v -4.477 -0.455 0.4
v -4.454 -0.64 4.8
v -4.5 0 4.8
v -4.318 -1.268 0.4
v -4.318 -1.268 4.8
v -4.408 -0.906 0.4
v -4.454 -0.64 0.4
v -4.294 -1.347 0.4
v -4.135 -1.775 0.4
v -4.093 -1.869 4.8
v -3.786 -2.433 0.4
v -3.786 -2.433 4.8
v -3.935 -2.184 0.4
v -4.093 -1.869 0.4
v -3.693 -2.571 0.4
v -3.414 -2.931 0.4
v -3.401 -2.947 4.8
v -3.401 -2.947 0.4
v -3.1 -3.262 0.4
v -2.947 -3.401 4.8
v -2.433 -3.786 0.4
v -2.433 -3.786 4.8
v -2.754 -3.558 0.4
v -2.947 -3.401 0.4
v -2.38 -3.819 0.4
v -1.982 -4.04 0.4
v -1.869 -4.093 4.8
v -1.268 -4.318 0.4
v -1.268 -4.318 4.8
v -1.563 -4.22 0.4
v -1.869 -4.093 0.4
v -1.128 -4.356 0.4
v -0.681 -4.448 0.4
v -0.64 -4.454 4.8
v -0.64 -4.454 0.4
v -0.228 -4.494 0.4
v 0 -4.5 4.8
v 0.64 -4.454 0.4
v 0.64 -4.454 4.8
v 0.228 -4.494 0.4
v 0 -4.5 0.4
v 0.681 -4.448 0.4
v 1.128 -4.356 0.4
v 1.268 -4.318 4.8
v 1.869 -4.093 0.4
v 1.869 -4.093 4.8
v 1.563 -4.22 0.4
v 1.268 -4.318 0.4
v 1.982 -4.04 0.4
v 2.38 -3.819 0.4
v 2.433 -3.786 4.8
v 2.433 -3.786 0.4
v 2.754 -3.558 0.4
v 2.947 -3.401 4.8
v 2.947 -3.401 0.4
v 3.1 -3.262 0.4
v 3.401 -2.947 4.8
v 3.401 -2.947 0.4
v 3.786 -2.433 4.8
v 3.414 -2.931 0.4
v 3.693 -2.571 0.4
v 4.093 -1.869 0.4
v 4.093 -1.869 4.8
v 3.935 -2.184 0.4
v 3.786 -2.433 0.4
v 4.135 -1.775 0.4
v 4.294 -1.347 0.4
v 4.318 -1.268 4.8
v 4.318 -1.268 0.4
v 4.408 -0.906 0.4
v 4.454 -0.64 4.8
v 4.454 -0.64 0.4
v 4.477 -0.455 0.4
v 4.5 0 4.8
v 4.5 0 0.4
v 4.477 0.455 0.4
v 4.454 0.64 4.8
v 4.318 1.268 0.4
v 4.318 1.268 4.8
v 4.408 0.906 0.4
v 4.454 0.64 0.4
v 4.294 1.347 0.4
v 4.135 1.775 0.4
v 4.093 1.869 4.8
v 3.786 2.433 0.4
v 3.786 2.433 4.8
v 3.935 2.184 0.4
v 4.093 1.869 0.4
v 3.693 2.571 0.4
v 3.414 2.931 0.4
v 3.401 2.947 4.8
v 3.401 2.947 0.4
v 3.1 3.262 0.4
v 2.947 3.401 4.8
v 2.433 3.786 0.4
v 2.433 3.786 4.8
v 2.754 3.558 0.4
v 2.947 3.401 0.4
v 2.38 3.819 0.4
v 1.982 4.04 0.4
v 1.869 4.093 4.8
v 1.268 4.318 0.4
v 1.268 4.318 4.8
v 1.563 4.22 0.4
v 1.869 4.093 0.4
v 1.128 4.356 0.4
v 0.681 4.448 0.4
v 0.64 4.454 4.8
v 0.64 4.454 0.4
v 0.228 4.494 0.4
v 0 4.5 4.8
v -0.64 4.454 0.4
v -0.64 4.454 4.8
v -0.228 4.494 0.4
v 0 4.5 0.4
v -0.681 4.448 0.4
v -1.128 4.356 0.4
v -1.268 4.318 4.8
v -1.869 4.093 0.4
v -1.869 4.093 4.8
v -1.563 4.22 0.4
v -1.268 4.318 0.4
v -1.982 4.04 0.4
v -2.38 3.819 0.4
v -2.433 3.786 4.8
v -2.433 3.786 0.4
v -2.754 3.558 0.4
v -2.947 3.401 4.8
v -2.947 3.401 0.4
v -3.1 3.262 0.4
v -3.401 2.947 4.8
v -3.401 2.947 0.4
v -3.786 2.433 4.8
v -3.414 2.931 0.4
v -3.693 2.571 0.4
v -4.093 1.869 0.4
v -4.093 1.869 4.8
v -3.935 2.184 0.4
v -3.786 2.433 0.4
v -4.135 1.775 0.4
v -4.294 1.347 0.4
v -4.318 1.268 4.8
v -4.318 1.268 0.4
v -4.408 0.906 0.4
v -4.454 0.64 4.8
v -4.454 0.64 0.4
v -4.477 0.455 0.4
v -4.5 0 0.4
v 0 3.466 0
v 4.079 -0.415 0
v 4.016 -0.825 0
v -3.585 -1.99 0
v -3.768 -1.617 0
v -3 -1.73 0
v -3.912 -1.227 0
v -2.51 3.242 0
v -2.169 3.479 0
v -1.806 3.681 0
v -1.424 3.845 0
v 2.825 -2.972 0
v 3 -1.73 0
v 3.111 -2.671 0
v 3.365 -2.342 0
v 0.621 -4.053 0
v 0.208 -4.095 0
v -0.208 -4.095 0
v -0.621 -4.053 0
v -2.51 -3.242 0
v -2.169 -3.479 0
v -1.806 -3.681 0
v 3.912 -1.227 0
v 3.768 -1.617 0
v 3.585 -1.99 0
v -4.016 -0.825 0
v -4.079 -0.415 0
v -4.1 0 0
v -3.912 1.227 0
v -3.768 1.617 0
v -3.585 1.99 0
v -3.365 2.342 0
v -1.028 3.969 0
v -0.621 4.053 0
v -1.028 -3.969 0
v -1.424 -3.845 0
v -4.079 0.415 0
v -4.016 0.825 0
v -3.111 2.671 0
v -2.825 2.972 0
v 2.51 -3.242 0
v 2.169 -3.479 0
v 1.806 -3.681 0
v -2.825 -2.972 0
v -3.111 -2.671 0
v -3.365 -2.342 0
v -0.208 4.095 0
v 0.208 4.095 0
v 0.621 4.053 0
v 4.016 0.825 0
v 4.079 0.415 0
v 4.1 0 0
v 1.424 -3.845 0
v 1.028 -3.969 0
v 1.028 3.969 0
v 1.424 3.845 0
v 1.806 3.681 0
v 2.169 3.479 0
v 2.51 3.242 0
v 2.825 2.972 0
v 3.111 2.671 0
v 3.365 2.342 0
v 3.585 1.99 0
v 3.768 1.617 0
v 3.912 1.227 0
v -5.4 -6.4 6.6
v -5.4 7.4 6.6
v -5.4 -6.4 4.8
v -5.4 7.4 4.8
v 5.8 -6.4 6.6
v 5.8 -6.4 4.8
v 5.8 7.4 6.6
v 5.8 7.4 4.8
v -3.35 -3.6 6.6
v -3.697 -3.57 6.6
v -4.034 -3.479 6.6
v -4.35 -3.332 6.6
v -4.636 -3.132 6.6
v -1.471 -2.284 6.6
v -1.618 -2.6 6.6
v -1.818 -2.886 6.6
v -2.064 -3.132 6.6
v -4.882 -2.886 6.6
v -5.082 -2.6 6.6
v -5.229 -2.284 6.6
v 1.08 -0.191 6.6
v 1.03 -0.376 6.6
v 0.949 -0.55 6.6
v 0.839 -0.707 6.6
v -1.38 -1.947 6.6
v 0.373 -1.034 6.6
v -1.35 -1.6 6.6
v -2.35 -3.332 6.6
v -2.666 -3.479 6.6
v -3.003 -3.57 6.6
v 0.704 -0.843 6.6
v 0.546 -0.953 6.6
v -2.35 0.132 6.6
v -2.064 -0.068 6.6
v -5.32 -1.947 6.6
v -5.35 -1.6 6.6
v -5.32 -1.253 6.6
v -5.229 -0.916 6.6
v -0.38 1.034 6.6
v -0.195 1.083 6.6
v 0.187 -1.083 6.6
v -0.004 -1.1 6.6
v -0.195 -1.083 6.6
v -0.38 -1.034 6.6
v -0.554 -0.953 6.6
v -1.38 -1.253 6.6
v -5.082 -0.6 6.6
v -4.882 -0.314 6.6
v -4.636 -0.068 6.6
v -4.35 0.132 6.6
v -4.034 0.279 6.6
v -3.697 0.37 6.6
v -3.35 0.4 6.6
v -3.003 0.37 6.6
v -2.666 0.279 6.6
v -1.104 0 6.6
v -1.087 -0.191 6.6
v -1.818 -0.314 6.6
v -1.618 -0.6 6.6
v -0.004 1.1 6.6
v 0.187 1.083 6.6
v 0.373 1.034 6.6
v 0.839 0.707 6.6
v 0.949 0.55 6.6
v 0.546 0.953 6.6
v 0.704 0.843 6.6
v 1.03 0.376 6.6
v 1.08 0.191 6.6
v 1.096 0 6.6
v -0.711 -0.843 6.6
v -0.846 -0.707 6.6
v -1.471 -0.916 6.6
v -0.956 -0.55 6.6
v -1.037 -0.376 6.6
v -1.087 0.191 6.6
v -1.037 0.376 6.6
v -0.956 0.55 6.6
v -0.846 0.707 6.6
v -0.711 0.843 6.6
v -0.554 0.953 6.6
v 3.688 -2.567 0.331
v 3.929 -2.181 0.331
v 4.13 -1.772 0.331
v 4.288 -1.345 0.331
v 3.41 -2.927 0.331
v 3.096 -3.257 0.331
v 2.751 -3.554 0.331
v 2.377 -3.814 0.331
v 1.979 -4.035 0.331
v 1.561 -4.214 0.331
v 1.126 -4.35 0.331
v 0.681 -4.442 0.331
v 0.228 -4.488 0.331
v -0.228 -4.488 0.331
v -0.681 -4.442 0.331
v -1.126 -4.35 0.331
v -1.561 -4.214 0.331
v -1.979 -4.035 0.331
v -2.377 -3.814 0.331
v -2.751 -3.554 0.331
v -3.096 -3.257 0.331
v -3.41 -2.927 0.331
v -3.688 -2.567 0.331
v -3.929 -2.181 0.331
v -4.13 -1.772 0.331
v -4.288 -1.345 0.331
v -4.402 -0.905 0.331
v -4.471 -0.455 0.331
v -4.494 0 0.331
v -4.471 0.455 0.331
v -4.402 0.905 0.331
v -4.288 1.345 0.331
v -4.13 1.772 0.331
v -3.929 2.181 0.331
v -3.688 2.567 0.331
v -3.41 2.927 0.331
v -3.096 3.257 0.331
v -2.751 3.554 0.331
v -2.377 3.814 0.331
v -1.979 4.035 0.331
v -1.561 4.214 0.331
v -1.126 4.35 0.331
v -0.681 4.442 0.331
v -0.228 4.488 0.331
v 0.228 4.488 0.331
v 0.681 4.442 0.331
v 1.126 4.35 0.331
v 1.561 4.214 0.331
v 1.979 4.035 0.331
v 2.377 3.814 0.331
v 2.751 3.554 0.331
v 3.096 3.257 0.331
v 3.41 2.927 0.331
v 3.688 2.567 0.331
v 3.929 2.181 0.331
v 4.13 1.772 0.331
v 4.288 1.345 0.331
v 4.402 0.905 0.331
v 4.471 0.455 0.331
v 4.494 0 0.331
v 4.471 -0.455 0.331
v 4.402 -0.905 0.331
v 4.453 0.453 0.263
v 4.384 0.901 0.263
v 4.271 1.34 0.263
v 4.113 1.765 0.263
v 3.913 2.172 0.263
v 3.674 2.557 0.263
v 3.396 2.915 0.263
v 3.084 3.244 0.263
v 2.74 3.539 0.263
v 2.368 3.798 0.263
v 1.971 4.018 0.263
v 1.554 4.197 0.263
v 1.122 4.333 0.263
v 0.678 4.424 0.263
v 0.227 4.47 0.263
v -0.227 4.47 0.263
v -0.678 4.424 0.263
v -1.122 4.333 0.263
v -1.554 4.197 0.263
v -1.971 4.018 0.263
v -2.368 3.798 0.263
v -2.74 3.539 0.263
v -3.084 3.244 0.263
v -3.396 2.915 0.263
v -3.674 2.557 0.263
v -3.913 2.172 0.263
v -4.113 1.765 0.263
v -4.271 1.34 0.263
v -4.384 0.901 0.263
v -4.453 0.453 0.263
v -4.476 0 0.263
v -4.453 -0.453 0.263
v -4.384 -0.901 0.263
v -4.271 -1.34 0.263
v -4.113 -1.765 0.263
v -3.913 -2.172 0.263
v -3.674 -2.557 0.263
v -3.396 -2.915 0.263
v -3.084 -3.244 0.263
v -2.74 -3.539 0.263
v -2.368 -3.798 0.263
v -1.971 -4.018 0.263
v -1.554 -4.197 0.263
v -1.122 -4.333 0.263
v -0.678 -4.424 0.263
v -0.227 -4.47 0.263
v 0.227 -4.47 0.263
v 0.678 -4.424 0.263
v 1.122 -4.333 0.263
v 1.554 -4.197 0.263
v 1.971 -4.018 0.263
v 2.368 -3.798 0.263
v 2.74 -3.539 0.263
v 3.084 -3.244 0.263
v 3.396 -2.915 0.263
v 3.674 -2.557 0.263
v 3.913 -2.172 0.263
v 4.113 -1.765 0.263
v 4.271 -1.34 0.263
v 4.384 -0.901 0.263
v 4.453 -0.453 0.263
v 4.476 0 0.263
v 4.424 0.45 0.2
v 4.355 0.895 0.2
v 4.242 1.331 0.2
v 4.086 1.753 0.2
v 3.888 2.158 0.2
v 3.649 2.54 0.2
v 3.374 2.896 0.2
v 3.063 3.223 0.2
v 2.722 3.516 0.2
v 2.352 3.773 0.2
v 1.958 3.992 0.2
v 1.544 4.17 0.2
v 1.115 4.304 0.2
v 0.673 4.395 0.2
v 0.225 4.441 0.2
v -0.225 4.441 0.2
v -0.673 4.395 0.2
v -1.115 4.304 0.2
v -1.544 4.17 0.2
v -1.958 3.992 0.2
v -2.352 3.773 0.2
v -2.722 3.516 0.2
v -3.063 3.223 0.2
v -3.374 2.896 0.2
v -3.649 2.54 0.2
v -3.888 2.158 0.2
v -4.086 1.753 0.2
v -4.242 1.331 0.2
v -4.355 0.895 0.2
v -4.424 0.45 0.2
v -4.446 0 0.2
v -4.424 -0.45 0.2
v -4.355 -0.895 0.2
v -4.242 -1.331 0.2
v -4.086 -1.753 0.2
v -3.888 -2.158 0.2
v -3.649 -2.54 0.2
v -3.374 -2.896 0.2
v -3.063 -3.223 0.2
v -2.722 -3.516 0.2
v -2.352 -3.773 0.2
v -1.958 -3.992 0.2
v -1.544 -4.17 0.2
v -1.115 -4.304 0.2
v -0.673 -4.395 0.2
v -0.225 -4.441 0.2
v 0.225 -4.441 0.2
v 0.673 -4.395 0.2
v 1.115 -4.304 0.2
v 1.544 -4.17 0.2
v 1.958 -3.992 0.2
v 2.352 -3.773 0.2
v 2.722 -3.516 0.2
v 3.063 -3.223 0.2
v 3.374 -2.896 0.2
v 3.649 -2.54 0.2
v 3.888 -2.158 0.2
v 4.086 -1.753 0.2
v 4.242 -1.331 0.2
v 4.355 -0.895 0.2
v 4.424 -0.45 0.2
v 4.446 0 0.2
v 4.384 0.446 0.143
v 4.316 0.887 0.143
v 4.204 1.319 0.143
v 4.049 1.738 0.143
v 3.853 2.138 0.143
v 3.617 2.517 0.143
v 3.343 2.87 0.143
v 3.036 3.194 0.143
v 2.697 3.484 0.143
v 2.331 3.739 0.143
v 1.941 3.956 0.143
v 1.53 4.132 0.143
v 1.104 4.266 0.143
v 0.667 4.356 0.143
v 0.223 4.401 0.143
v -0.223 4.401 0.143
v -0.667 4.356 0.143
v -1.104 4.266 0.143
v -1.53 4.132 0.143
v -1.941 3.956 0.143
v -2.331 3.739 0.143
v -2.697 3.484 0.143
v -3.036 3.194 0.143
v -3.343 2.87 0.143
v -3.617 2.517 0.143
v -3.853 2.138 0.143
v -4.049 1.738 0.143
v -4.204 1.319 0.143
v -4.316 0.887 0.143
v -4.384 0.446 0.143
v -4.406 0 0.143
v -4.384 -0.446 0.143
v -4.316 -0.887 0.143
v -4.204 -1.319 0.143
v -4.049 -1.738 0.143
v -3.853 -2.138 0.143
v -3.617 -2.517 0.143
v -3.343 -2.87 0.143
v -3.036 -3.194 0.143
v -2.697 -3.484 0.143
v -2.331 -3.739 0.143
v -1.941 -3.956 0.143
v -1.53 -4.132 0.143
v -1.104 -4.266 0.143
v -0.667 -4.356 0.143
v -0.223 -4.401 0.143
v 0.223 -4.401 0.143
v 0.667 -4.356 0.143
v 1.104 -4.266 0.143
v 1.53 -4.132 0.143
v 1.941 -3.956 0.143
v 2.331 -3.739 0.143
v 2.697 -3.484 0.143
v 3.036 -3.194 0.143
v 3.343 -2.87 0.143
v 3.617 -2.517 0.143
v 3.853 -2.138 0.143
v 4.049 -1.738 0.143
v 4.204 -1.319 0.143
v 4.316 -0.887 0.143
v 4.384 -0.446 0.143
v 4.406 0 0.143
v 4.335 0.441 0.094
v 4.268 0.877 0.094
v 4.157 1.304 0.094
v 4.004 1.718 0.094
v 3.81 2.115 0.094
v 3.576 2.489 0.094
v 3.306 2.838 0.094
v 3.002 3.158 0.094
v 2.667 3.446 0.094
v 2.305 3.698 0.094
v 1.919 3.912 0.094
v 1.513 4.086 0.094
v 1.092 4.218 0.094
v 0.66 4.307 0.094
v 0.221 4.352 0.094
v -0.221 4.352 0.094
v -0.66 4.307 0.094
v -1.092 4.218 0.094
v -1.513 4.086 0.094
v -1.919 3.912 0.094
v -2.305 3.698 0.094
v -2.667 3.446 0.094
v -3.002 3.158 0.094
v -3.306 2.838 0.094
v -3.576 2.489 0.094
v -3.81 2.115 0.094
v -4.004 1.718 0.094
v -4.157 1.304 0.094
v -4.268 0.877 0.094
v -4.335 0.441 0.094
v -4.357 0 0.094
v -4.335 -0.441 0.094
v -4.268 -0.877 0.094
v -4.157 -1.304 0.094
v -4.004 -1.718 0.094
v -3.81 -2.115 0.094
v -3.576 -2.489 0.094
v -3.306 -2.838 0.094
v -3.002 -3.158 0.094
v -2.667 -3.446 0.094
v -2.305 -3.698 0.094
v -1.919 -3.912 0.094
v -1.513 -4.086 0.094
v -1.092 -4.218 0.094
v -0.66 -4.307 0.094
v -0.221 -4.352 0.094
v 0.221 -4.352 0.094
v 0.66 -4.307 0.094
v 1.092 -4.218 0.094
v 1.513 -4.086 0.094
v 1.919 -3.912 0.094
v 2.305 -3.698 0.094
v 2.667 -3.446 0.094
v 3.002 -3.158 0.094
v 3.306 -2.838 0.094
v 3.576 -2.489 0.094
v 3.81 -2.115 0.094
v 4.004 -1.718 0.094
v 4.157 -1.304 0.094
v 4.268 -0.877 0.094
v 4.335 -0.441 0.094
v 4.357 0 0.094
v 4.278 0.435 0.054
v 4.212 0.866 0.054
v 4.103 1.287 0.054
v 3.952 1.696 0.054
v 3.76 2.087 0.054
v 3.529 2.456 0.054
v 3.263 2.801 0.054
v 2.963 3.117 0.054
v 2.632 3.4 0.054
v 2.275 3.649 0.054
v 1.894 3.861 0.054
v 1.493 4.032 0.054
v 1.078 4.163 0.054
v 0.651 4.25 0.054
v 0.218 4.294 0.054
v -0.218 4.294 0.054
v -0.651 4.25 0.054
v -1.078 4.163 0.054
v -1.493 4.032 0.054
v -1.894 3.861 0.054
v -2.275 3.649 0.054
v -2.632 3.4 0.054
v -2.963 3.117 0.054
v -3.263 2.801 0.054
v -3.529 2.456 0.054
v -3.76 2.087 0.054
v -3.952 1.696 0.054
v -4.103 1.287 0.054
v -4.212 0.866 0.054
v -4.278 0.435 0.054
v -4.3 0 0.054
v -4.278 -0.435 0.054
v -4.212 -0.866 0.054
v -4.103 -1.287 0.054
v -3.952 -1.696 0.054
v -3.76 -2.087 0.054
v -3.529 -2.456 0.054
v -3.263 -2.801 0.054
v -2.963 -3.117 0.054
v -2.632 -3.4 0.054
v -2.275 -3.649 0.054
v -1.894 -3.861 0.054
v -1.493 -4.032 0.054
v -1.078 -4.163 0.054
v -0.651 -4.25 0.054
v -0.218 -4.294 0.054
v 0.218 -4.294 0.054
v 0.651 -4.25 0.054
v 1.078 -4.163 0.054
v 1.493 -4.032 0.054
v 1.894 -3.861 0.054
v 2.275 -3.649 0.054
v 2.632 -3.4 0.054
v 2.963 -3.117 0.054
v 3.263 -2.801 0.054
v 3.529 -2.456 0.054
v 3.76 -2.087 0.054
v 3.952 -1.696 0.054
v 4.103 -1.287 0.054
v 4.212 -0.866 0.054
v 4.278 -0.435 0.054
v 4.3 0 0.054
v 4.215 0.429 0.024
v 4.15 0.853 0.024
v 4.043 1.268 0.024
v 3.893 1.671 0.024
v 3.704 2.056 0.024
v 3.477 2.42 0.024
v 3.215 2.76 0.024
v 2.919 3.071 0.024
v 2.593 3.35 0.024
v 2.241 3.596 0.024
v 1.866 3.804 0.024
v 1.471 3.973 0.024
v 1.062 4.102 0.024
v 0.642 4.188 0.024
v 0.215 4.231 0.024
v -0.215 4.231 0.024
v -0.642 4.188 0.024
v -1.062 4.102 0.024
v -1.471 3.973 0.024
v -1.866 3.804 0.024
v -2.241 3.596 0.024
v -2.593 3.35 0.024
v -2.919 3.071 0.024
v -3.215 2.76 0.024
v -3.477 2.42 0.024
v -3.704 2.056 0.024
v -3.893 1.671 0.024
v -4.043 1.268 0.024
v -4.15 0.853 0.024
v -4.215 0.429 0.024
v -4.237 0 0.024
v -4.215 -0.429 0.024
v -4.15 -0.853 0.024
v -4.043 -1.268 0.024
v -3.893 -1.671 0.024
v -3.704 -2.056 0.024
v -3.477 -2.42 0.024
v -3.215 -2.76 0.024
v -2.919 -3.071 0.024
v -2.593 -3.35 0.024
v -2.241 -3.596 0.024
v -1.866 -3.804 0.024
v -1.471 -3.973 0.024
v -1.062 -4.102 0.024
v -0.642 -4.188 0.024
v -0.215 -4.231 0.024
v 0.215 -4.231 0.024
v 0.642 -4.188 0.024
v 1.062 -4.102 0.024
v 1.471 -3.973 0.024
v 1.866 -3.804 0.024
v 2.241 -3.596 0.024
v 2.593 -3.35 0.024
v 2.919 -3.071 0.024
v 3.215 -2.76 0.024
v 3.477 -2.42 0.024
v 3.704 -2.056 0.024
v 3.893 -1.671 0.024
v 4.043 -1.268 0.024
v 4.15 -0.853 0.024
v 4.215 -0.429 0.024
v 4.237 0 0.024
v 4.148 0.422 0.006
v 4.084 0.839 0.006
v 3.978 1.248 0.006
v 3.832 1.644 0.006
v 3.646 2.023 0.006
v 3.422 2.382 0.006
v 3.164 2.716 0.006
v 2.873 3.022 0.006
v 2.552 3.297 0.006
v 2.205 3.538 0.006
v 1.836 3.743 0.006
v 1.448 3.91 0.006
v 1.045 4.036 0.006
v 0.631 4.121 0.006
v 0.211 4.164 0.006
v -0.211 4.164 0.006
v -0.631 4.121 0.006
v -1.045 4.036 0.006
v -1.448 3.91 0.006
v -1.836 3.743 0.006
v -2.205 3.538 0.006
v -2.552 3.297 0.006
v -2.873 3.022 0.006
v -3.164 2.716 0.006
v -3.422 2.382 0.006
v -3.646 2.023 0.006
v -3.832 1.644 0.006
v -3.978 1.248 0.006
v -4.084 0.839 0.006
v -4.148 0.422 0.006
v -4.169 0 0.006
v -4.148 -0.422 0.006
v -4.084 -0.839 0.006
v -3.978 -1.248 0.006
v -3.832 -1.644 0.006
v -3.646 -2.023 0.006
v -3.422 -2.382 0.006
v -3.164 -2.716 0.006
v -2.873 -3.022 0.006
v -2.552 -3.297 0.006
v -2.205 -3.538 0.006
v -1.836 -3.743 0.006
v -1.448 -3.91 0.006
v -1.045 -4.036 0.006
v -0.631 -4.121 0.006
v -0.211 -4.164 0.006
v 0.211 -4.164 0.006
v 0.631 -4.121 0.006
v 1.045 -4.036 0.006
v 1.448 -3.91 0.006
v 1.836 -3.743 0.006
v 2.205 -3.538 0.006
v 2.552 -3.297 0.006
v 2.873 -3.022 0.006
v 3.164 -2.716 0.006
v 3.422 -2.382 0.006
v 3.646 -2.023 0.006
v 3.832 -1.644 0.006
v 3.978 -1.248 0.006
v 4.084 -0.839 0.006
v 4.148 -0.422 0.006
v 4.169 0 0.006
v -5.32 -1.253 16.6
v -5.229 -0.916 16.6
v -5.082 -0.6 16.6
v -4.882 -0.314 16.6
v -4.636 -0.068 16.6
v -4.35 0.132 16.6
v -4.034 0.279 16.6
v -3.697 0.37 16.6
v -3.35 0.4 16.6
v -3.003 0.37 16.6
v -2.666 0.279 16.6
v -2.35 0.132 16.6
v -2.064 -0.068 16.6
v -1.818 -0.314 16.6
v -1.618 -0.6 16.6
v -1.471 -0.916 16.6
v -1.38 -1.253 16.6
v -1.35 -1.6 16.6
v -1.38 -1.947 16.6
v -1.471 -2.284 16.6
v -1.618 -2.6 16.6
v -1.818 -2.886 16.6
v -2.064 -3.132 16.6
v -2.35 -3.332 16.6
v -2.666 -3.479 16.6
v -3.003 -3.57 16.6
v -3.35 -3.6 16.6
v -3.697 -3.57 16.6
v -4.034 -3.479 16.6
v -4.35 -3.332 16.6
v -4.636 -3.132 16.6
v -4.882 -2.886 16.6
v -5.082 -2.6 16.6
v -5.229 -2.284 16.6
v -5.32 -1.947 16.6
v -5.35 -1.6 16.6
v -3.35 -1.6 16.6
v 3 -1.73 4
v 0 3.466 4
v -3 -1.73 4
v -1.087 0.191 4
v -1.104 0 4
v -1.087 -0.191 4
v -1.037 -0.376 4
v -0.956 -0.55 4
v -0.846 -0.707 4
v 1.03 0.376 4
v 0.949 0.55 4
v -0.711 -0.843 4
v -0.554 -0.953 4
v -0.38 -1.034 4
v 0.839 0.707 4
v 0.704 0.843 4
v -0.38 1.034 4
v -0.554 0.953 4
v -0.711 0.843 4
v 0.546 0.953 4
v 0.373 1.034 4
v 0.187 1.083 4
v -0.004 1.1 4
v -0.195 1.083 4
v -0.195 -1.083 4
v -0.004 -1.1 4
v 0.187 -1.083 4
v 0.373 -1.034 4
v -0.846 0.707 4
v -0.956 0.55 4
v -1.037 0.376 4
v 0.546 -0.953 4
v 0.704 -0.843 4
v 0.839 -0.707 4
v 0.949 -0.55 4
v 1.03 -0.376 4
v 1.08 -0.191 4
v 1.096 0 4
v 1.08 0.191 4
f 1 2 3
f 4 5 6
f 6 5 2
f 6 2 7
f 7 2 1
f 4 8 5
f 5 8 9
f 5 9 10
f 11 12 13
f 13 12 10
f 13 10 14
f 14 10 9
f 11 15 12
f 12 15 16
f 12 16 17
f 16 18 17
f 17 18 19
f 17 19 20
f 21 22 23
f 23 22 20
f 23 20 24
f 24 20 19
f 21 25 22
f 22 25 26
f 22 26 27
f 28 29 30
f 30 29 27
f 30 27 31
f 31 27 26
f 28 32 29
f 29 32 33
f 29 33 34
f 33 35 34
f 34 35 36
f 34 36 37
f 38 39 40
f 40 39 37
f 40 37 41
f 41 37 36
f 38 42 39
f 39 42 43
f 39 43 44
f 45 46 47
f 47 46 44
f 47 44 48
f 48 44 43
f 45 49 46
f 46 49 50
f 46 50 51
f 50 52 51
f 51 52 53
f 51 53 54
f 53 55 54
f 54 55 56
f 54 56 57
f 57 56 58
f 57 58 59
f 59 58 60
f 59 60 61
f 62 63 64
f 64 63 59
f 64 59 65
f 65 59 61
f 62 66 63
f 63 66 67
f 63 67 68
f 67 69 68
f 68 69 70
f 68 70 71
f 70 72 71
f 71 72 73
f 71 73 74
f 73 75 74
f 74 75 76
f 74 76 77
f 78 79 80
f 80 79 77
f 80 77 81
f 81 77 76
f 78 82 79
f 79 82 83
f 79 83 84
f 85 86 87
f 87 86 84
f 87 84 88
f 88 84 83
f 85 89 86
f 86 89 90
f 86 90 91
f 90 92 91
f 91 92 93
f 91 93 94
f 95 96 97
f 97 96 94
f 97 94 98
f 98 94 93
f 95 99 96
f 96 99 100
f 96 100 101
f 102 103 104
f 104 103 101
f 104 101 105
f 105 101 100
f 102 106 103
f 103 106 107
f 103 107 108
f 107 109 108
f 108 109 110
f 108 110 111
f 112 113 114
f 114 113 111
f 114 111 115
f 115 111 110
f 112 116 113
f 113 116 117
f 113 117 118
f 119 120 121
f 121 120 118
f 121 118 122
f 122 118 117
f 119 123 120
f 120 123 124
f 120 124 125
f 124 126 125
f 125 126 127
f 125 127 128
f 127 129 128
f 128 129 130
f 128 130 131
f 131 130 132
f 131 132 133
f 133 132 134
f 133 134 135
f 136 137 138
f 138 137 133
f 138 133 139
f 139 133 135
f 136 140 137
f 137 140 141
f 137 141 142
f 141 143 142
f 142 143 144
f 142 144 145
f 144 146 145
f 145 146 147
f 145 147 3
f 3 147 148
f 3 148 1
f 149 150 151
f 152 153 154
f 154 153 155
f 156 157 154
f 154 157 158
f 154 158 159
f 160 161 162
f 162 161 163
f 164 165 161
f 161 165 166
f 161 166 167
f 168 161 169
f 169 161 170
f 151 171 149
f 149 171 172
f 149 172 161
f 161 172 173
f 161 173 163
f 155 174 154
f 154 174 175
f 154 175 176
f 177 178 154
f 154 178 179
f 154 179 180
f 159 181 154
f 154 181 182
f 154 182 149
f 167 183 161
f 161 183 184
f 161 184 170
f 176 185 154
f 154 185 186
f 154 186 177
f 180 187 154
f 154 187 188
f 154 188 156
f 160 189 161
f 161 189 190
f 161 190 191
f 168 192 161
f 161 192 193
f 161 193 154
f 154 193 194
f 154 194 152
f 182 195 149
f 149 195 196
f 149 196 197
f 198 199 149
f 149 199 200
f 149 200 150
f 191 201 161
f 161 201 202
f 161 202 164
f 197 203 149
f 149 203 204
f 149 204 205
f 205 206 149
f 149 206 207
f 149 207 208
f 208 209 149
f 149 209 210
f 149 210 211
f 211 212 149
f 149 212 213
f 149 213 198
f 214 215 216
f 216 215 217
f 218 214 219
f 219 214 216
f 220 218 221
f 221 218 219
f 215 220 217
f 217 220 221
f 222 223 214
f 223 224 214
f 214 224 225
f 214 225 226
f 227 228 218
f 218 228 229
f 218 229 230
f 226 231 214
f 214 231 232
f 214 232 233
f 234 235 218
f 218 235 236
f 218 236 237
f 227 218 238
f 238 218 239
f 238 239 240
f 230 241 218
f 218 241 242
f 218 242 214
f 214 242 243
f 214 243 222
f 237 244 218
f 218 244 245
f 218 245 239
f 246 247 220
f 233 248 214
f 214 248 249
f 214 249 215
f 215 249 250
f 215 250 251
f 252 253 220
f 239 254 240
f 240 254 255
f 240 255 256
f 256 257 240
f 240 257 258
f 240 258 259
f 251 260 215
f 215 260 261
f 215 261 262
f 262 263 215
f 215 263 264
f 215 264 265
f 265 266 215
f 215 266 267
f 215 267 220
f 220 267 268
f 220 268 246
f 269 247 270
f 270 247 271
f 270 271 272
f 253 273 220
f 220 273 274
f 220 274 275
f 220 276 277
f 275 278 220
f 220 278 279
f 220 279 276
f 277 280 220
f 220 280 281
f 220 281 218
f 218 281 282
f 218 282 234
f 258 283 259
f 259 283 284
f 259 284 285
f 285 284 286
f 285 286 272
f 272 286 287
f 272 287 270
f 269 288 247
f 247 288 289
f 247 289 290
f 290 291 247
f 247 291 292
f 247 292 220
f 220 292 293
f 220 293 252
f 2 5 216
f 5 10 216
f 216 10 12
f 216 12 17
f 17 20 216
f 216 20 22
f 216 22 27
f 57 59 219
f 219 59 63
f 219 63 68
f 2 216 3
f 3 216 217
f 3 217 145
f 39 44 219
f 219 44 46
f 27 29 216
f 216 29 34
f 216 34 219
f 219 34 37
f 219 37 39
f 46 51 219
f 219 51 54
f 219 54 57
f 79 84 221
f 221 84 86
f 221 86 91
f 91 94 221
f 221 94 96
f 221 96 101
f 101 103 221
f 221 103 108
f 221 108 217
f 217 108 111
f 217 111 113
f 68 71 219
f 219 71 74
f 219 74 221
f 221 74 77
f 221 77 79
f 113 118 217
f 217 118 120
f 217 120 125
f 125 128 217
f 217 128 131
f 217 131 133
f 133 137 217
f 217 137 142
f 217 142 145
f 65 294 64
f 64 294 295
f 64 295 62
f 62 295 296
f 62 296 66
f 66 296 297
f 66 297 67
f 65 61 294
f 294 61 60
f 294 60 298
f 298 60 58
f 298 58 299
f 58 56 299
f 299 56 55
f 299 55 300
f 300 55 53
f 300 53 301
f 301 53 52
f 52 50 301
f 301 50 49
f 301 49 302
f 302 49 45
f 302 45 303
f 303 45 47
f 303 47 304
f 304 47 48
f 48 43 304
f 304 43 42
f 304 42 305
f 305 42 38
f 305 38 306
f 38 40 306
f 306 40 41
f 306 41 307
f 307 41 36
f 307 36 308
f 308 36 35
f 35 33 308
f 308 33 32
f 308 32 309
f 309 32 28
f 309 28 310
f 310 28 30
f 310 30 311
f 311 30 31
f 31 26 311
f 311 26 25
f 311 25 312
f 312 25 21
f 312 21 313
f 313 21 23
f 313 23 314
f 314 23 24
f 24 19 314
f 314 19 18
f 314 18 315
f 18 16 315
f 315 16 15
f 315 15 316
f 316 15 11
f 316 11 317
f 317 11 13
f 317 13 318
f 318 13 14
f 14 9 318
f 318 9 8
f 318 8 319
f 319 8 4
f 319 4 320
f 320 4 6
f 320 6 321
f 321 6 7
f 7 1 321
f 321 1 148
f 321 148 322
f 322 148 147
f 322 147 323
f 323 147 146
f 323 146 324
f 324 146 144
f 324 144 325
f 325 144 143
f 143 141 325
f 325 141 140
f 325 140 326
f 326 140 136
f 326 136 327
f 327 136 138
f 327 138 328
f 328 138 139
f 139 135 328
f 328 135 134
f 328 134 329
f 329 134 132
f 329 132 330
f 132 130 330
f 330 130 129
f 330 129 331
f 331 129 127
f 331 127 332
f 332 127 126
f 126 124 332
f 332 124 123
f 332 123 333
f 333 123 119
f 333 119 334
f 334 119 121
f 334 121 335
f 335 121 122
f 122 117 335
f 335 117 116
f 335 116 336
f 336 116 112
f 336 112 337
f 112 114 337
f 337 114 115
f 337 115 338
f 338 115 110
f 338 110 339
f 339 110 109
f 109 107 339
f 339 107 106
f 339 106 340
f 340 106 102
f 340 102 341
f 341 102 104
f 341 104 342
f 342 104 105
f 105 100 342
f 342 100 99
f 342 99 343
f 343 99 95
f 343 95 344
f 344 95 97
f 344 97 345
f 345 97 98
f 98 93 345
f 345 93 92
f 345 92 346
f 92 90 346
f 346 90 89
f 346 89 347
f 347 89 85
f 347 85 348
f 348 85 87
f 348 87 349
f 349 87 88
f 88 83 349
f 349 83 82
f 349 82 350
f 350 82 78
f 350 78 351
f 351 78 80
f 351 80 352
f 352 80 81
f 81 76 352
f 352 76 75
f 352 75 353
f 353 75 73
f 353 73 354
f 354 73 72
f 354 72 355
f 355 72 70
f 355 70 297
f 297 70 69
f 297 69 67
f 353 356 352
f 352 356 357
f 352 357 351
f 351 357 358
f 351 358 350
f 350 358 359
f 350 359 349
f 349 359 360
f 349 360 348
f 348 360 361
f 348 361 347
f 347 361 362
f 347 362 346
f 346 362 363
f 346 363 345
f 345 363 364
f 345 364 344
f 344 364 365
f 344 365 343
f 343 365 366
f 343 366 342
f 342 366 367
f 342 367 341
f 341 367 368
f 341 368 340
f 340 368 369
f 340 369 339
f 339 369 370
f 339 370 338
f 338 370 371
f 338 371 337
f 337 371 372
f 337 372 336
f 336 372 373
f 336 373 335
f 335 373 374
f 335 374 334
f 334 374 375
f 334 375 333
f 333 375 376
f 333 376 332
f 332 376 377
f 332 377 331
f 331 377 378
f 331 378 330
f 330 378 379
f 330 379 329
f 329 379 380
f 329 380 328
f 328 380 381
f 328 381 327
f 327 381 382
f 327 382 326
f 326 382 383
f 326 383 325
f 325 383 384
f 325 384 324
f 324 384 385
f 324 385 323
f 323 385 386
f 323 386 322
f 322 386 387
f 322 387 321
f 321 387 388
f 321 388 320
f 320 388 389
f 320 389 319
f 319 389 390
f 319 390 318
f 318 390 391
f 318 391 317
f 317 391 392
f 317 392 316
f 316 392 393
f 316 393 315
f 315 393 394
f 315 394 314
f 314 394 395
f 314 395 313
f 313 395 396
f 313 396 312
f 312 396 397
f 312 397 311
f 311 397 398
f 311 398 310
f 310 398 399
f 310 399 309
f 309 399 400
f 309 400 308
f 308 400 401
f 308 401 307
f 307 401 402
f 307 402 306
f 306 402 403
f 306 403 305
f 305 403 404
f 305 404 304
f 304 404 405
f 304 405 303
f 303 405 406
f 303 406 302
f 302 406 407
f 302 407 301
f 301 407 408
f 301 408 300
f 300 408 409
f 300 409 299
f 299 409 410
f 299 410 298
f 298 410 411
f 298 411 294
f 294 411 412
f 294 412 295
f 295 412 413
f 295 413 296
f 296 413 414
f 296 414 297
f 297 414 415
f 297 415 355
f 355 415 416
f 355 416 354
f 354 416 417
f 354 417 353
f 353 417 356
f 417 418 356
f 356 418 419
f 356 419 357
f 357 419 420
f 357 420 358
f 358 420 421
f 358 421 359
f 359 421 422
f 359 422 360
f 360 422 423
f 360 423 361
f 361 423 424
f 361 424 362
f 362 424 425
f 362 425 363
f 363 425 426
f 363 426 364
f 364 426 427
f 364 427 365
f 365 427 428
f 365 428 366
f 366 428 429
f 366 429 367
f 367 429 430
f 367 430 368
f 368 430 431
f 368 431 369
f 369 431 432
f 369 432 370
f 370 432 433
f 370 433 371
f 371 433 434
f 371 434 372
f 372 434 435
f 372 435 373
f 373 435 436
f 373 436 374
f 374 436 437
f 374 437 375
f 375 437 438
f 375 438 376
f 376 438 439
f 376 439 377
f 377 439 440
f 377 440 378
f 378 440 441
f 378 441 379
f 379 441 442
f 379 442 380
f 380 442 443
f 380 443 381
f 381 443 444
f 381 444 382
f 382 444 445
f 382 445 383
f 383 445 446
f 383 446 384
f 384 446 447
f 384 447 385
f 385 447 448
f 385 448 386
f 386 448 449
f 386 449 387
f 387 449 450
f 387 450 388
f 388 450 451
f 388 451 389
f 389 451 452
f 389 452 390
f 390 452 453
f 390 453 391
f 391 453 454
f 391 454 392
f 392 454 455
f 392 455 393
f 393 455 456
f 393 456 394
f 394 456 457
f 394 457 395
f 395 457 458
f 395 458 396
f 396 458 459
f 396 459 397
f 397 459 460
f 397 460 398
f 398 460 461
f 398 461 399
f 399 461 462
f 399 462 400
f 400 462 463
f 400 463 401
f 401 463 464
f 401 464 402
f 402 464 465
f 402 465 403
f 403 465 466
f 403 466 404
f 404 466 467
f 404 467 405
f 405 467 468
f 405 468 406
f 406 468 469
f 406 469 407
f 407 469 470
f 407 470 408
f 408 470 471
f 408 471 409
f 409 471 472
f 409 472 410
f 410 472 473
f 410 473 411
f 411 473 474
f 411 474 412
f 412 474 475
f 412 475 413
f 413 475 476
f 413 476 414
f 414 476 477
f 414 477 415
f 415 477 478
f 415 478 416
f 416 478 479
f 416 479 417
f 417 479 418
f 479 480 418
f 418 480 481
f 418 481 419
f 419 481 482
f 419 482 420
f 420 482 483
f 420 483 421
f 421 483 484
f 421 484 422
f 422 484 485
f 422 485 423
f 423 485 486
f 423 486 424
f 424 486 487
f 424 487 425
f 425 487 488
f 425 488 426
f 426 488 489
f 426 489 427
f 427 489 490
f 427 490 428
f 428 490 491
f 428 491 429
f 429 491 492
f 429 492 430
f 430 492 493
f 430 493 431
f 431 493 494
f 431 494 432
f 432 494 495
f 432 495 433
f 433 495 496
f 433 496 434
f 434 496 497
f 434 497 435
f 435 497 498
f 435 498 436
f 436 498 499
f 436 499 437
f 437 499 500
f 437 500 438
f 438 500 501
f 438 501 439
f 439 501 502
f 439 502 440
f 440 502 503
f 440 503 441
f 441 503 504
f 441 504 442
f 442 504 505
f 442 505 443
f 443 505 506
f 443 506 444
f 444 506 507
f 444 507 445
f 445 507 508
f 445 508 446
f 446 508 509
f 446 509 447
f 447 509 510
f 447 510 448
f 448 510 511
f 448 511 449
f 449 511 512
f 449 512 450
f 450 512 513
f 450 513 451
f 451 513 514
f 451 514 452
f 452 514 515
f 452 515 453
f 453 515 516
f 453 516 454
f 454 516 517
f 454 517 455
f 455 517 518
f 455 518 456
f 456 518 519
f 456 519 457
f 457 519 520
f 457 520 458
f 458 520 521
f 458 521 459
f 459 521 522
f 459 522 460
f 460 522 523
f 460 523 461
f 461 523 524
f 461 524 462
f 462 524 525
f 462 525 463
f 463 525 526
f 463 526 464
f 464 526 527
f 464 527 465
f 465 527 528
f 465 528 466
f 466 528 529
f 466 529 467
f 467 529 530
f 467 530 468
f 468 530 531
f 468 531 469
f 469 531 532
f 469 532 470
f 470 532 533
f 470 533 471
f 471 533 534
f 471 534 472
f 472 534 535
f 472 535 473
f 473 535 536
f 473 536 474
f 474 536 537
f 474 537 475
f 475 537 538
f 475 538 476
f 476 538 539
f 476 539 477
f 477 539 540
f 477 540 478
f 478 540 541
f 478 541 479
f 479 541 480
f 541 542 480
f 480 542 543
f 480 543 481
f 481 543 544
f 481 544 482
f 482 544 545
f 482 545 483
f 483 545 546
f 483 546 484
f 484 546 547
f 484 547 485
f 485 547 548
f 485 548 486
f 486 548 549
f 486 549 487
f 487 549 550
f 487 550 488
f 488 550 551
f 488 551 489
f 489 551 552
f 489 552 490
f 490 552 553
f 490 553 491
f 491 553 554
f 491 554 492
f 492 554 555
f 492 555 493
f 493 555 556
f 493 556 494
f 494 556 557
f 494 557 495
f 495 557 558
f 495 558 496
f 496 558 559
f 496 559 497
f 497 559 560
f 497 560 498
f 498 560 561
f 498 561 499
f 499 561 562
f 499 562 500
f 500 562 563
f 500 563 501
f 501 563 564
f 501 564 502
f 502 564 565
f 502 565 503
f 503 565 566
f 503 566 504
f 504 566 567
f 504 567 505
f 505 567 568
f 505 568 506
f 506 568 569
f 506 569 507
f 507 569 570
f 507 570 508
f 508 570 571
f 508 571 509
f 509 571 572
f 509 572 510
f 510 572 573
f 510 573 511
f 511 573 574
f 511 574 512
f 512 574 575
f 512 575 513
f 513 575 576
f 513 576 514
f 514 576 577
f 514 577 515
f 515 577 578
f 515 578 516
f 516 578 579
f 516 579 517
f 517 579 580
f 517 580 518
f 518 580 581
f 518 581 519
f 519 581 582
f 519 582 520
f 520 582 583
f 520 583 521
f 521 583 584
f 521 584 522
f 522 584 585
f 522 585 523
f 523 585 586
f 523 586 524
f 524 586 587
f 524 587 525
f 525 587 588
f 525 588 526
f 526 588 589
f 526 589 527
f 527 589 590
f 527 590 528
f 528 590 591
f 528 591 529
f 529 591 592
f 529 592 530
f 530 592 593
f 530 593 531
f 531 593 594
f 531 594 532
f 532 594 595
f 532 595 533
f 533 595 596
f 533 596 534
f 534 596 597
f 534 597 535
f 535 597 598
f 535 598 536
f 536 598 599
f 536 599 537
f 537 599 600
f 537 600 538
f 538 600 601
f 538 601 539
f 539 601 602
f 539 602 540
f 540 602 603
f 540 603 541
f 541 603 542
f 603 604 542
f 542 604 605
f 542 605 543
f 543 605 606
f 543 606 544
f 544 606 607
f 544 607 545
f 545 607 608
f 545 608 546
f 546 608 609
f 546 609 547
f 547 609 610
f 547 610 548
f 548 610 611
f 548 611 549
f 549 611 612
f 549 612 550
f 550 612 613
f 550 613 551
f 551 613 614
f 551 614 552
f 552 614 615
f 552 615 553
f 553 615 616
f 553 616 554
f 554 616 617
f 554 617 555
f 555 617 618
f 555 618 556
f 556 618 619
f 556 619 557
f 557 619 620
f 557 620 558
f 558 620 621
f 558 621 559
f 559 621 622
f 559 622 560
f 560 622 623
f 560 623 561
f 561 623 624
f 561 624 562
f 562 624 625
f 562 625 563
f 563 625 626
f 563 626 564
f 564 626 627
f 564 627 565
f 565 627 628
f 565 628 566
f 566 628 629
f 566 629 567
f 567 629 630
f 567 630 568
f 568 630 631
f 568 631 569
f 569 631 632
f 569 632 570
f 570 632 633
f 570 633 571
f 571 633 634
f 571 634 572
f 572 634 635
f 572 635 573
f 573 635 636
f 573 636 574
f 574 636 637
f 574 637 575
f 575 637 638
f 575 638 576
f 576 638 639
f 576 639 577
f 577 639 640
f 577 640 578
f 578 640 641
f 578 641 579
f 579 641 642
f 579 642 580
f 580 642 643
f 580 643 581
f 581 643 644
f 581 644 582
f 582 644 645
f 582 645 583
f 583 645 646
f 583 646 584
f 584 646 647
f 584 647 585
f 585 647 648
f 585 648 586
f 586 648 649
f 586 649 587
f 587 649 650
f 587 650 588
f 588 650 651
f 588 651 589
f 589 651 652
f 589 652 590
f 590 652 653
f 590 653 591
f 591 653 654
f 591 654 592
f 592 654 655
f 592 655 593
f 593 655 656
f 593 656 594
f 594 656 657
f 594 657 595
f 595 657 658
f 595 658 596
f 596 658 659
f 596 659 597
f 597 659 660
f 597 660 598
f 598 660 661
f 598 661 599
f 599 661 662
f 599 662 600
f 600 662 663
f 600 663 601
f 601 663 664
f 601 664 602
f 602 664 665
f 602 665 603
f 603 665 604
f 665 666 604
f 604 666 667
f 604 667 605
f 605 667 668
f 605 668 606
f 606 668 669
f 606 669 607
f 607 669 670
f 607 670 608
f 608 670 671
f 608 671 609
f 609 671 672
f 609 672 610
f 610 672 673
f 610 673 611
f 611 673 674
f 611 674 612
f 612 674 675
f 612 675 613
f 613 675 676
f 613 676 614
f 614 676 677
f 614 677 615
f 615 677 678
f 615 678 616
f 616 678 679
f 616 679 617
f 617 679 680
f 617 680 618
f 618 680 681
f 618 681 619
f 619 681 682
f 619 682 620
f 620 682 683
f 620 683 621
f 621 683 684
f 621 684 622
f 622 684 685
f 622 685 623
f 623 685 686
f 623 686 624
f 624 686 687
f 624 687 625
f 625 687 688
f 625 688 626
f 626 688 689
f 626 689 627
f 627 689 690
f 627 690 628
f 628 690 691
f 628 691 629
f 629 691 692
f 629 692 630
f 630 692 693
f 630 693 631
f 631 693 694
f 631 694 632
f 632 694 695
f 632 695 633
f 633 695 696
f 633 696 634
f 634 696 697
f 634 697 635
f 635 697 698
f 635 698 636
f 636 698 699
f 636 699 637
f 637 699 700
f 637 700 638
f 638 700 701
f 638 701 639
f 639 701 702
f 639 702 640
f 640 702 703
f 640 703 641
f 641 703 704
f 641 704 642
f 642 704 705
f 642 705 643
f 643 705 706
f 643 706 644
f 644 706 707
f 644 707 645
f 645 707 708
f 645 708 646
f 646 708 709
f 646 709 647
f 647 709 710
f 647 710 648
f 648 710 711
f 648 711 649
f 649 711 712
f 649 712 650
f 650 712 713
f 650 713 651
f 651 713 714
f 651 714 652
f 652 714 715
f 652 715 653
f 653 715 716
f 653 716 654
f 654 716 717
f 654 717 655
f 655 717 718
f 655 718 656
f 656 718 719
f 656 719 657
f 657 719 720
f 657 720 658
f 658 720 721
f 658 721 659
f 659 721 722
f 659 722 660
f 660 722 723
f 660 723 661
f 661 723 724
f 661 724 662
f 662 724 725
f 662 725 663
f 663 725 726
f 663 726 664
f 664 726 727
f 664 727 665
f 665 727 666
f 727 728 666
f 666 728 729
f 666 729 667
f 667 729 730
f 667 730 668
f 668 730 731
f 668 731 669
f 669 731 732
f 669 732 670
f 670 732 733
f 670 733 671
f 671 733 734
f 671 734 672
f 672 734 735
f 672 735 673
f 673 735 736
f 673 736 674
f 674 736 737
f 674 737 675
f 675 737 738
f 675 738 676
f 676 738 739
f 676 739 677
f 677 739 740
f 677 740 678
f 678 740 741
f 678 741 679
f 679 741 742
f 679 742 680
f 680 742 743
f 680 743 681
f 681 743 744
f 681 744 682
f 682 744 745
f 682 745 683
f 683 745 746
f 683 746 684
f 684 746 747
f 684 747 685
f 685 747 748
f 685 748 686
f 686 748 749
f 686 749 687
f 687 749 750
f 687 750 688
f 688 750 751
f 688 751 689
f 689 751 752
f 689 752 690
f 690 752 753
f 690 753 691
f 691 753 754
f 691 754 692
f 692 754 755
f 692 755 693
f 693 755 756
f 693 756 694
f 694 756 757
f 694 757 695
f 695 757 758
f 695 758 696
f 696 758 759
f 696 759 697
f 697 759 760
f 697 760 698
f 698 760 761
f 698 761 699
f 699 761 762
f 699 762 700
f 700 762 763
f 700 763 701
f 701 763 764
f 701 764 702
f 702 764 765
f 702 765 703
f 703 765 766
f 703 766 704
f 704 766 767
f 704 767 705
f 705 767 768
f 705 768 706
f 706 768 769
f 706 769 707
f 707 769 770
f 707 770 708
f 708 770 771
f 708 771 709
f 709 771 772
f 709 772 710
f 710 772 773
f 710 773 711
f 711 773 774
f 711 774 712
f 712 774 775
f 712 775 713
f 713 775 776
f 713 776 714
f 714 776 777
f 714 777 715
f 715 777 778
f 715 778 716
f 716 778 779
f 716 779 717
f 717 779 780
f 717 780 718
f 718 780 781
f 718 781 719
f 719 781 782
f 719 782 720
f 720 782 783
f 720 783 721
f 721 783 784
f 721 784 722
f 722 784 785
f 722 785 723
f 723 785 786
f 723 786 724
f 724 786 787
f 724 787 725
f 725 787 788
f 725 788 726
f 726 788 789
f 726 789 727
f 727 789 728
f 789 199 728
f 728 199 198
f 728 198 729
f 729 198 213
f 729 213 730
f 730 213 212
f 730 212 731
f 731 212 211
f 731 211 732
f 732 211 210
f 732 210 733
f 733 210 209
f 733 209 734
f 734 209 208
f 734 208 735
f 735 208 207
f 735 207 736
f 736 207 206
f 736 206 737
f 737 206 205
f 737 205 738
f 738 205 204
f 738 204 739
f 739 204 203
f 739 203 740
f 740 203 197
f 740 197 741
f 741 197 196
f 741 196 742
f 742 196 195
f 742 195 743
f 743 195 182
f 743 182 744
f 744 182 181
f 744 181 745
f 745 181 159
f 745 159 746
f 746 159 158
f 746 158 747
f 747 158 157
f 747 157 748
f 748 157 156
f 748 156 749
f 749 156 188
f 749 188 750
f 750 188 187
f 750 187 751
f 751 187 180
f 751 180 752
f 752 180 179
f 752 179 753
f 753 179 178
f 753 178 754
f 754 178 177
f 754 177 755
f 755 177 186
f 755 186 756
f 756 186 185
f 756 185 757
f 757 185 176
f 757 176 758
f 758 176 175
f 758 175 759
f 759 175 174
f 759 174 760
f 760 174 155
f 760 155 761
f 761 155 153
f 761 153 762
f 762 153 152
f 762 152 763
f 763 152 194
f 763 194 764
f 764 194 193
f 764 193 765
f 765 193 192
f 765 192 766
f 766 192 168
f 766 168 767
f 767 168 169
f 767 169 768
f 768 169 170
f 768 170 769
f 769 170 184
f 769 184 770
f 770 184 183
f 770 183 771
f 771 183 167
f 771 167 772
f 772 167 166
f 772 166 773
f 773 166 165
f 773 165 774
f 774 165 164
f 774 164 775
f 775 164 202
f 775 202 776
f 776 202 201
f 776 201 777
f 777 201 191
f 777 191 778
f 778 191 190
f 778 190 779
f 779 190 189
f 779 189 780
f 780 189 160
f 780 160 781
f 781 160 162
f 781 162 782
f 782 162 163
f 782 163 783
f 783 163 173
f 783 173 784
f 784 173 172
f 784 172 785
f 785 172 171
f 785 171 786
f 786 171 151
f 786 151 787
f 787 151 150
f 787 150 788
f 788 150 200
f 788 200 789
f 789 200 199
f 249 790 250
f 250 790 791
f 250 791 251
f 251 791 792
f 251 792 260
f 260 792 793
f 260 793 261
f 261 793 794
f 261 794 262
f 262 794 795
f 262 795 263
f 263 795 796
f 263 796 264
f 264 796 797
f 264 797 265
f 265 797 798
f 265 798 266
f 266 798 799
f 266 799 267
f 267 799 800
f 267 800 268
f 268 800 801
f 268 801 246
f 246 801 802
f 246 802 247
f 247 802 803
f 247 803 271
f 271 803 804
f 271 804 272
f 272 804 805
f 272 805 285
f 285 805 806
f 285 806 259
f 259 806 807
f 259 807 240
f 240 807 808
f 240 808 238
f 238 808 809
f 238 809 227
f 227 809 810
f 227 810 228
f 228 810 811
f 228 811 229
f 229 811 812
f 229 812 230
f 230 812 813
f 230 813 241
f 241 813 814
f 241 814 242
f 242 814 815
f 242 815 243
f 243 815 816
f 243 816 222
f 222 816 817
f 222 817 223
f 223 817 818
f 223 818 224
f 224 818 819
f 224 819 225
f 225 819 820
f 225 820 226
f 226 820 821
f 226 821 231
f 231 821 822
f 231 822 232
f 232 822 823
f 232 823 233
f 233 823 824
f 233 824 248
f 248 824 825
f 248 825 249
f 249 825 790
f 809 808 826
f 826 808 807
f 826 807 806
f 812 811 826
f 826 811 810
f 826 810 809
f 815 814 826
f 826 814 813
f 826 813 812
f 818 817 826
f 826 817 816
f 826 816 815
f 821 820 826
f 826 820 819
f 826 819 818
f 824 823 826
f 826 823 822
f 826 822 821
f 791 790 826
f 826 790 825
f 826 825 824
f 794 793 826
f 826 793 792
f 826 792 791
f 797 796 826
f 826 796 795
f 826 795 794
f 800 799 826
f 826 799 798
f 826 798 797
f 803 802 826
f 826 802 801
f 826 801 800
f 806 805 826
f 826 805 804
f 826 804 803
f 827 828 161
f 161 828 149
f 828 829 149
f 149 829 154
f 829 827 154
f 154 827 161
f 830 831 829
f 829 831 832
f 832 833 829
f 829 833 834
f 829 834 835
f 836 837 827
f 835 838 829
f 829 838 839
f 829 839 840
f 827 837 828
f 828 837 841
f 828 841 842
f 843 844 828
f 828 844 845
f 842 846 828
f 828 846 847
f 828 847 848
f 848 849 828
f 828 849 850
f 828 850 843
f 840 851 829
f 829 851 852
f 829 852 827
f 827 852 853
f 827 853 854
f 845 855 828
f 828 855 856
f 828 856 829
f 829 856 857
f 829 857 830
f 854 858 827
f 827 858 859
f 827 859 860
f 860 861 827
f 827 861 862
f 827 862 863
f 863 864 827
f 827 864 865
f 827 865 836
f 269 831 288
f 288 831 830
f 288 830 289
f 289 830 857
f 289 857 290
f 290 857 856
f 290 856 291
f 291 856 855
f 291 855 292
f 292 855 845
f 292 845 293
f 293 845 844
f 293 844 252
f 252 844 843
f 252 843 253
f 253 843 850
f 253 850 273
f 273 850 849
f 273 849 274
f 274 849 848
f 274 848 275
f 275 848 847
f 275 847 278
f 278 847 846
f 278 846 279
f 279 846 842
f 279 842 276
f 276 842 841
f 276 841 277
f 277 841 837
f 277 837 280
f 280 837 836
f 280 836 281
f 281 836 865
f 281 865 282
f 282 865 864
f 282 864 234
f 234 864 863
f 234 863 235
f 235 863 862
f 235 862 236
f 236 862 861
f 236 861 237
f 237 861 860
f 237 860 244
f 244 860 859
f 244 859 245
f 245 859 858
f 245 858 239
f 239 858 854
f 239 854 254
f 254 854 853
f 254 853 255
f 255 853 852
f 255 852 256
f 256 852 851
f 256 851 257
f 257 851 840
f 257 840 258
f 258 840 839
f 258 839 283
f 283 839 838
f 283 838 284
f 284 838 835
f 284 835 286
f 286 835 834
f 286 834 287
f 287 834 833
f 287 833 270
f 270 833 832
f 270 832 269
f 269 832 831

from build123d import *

# Parameters (mm, degrees)
SKETCH_1_R          = 4.5
EXTRUDE_1_DEPTH     = 4.8
SKETCH_2_W          = 11.2
SKETCH_2_H          = 13.8
EXTRUDE_2_DEPTH     = 1.8
FILLET_1_R          = 0.4
SKETCH_4_R          = 2
EXTRUDE_3_DEPTH     = 10
CUT_EXTRUDE_1_DEPTH = 4
SKETCH_7_R          = 1.1
CUT_EXTRUDE_2_DEPTH = 16.7213231


with BuildPart() as part:
    # Эскиз1 → Бобышка-Вытянуть1 (new body)
    with BuildSketch(Plane.XY):
        Circle(SKETCH_1_R)
    extrude(amount=EXTRUDE_1_DEPTH)

    # Эскиз2 → Бобышка-Вытянуть2 (add)
    with BuildSketch(Plane.XY.offset(4.8)):
        with Locations((0.2, 0.5)):
            Rectangle(SKETCH_2_W, SKETCH_2_H)
    extrude(amount=EXTRUDE_2_DEPTH)

    # Скругление1
    fillet_1_edges = [part.edges().sort_by_distance(p)[0] for p in [
        (-4.5, 0, 0),
    ]]
    fillet(fillet_1_edges, radius=FILLET_1_R)

    # Эскиз4 → Бобышка-Вытянуть3 (add)
    with BuildSketch(Plane.XY.offset(6.6)):
        with Locations((-3.35, -1.6)):
            Circle(SKETCH_4_R)
    extrude(amount=EXTRUDE_3_DEPTH)

    # Эскиз3 → Вырез-Вытянуть1 (cut)
    with BuildSketch(Plane(origin=(0, 0, 0), x_dir=(-1, 0, 0), z_dir=(0, 0, -1))):
        Polygon((-3, -1.73), (3, -1.73), (0, 3.466152423), align=None)
    extrude(amount=-CUT_EXTRUDE_1_DEPTH, mode=Mode.SUBTRACT)

    # Эскиз7 → Вырез-Вытянуть2 (cut, through all)
    with BuildSketch(Plane(origin=(0, 0, 4), x_dir=(-1, 0, 0), z_dir=(0, 0, -1))):
        with Locations((0.003552103, 0)):
            Circle(SKETCH_7_R)
    extrude(amount=-CUT_EXTRUDE_2_DEPTH, mode=Mode.SUBTRACT)


solid = part.part
